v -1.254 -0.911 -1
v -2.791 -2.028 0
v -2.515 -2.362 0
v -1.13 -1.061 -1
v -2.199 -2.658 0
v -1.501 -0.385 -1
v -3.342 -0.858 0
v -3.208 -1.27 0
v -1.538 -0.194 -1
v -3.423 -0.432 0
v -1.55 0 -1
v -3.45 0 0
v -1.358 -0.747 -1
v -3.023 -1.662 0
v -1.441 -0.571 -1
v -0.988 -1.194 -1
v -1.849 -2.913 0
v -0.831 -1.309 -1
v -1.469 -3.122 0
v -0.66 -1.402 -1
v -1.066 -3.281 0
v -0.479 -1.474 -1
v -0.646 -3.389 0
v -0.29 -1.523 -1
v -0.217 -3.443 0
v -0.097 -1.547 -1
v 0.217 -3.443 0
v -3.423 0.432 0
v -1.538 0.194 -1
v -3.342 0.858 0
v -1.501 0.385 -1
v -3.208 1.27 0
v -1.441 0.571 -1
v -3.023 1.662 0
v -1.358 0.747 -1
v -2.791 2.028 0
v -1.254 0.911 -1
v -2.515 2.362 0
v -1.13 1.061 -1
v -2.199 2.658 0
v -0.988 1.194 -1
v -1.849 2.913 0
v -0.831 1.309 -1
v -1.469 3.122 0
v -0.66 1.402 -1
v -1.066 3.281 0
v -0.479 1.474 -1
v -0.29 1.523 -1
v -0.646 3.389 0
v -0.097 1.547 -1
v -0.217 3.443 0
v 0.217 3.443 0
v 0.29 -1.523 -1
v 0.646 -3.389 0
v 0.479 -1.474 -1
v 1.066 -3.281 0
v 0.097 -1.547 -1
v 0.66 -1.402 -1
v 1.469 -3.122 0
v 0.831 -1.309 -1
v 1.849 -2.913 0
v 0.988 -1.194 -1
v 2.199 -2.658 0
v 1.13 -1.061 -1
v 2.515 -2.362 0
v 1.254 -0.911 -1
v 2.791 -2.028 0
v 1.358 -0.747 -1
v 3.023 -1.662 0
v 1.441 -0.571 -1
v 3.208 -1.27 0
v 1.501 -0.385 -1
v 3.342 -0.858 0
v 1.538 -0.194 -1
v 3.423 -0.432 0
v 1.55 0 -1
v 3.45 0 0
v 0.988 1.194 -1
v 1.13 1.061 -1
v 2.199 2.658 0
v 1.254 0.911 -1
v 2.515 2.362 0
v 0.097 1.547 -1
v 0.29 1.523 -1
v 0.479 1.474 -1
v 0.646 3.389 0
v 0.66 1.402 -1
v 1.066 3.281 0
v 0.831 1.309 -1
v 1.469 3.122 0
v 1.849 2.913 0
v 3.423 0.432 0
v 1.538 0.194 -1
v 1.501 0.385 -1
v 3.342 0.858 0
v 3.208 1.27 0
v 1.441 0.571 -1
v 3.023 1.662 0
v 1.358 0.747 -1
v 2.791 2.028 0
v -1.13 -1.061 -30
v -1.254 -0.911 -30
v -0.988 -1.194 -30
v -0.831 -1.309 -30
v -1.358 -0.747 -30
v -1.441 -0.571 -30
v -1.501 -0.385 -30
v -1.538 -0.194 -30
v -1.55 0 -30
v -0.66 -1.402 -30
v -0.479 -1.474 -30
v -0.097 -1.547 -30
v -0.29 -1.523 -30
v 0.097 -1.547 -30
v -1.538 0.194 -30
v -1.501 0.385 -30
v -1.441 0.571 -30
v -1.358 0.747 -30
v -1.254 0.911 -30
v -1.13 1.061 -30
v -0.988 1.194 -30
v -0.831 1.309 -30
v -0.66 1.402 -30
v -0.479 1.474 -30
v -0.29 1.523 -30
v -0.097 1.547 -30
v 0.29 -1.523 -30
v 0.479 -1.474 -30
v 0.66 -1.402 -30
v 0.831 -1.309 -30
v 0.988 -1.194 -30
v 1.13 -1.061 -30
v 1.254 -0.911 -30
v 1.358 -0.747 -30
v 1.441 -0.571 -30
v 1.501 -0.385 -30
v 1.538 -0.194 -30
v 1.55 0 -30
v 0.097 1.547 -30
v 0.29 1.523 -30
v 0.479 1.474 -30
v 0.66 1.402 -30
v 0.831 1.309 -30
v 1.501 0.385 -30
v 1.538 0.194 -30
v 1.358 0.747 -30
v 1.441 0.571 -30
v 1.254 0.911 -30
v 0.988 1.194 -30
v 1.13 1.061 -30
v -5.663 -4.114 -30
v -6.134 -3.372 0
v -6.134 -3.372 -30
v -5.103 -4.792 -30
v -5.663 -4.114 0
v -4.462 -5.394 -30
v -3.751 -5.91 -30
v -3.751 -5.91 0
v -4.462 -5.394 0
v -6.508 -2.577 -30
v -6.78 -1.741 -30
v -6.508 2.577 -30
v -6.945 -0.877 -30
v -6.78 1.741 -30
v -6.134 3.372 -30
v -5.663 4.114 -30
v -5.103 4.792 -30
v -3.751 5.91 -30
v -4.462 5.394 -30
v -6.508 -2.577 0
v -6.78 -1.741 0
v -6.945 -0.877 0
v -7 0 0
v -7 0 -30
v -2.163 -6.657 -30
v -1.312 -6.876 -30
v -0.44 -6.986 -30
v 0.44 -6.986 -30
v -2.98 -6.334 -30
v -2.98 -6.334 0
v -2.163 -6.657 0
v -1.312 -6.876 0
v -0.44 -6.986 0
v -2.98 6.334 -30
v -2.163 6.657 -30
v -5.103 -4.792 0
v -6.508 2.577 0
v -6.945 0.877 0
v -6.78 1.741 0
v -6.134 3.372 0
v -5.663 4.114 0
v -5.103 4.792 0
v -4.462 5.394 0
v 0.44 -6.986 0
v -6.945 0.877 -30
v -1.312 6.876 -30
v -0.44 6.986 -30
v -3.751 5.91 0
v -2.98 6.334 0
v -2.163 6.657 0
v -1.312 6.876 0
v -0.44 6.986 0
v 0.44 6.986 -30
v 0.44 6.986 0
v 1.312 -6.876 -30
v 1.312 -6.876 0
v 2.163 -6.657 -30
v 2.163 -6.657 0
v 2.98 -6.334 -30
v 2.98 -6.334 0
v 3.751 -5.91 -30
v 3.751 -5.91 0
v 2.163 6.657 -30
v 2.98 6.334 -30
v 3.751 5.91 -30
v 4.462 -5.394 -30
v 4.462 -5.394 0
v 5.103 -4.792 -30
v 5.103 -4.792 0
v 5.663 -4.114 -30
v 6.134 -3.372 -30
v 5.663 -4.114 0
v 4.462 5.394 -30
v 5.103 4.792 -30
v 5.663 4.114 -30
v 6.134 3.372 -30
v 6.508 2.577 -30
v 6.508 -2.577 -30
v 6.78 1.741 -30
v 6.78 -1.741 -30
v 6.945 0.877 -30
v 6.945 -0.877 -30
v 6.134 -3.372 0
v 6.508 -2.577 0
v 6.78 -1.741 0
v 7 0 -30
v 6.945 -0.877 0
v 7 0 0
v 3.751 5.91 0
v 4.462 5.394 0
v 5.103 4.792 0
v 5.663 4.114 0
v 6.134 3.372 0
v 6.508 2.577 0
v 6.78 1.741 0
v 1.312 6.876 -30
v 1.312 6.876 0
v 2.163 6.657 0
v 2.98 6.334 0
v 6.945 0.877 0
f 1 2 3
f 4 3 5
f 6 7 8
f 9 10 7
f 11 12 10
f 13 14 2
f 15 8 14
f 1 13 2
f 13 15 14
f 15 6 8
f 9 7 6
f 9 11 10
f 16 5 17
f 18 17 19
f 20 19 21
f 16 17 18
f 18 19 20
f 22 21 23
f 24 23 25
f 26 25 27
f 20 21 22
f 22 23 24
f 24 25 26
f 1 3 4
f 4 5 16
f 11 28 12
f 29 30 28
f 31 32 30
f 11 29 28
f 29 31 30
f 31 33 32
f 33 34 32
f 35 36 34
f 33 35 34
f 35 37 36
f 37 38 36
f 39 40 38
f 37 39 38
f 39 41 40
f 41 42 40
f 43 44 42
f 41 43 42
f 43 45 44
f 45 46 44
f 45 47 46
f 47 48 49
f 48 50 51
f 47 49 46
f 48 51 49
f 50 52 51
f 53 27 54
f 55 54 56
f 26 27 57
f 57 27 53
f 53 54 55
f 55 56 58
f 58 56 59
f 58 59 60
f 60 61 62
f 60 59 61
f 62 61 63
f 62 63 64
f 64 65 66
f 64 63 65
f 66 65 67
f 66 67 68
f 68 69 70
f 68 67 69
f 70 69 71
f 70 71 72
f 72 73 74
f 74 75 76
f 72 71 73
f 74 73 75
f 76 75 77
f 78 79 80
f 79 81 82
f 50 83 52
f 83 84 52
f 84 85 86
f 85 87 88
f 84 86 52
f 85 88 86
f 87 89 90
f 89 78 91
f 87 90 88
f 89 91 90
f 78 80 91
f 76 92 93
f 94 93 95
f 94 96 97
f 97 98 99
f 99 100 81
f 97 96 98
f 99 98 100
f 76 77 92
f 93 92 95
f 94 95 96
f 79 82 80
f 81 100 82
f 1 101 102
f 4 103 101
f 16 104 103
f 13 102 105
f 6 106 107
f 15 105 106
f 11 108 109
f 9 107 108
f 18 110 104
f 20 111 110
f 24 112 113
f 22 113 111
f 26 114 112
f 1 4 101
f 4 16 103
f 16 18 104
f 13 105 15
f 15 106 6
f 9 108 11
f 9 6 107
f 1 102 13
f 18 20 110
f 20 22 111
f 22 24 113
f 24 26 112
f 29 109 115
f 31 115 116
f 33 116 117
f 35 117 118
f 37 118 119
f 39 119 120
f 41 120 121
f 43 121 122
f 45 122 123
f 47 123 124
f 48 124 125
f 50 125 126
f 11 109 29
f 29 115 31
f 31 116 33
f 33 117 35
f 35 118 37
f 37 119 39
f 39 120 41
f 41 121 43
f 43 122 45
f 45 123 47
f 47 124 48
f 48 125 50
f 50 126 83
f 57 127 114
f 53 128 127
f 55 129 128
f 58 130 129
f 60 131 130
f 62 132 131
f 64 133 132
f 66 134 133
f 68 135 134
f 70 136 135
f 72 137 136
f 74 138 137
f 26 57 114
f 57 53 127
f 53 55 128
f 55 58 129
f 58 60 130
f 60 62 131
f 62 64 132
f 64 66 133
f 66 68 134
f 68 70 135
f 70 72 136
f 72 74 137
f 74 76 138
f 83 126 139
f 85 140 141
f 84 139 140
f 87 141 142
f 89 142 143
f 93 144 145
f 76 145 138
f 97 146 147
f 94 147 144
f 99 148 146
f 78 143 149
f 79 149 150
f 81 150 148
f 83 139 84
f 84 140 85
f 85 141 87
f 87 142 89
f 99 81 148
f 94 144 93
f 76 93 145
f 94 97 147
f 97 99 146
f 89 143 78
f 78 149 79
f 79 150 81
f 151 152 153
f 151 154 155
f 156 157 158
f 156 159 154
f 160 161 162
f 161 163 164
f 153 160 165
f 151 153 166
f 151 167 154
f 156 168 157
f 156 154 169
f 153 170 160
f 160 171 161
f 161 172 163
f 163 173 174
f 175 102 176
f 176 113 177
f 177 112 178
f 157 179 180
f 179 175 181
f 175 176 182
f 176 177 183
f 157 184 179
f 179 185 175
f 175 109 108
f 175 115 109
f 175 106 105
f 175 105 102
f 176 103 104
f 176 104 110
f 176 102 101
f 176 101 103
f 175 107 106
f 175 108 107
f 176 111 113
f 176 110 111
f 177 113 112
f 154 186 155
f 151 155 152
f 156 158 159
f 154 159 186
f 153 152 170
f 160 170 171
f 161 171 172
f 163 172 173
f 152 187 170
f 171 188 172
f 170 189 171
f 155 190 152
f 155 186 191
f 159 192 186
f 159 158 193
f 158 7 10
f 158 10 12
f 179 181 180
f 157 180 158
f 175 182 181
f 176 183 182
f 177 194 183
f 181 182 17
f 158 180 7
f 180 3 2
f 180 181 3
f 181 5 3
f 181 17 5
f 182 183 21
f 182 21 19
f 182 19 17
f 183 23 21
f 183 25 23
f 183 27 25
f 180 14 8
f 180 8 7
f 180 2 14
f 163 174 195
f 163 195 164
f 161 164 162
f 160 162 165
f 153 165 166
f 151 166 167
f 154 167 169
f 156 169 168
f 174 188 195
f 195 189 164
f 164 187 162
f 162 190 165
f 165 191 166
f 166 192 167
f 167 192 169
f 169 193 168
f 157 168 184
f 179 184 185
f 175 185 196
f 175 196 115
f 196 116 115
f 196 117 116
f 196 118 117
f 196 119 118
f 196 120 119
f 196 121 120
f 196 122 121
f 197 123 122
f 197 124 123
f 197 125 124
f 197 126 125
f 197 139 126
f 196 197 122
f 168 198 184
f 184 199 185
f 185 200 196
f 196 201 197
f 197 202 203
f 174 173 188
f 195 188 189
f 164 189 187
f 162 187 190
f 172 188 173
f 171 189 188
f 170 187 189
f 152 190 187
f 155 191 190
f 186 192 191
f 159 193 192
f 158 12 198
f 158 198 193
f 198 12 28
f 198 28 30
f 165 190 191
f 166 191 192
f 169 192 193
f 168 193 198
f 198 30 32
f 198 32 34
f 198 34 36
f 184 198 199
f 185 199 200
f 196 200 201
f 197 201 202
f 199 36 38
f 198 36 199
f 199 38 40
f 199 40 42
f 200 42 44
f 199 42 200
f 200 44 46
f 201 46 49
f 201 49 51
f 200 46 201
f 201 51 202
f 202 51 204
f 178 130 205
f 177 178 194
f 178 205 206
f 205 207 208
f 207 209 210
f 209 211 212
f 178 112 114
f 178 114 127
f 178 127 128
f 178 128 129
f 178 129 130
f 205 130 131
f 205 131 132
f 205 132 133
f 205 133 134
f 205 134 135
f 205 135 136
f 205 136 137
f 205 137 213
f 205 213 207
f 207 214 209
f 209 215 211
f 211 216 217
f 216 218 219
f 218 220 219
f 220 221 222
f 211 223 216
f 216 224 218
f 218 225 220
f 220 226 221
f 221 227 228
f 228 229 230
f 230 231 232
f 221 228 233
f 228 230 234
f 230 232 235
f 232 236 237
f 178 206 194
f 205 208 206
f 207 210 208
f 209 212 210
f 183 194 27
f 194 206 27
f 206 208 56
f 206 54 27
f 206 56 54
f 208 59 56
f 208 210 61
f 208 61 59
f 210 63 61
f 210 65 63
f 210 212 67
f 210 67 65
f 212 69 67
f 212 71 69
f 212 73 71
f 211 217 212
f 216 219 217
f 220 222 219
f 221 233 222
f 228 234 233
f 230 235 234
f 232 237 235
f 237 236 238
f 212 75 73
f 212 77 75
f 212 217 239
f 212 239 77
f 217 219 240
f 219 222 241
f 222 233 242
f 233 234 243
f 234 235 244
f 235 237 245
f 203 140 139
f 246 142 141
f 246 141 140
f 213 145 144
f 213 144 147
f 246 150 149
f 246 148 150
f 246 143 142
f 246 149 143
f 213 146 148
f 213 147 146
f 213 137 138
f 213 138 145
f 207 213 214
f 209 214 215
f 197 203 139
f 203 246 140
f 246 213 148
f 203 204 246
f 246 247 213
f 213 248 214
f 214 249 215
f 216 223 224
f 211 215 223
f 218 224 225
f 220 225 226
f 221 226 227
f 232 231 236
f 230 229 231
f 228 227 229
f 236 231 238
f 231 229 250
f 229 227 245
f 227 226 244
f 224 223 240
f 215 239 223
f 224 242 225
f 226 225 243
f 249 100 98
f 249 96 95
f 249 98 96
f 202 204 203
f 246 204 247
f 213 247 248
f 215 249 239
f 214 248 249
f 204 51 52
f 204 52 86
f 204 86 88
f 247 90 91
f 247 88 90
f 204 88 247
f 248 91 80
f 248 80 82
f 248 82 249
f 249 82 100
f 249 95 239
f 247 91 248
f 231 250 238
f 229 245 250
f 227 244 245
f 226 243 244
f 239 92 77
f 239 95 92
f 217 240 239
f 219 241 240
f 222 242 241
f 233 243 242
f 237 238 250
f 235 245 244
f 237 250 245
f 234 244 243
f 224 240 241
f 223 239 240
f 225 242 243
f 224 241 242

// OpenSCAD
$fn = 50;

difference() {
	union() {
		translate(v = [0, 0, -30.0]) {
			cylinder(h = 30, r = 7.0);
		}
	}
	union() {
		translate(v = [0, 0, 0]) {
			rotate(a = [0, 0, 0]) {
				difference() {
					union() {
						translate(v = [0, 0, -33.0]) {
							cylinder(h = 33, r = 1.25);
						}
						translate(v = [0, 0, -1.0]) {
							cylinder(h = 1.0, r1 = 1.55, r2 = 3.45);
						}
						translate(v = [0, 0, -33.0]) {
							cylinder(h = 33, r = 1.55);
						}
						translate(v = [0, 0, -33.0]) {
							cylinder(h = 33, r = 1.25);
						}
					}
					union();
				}
			}
		}
	}
}
